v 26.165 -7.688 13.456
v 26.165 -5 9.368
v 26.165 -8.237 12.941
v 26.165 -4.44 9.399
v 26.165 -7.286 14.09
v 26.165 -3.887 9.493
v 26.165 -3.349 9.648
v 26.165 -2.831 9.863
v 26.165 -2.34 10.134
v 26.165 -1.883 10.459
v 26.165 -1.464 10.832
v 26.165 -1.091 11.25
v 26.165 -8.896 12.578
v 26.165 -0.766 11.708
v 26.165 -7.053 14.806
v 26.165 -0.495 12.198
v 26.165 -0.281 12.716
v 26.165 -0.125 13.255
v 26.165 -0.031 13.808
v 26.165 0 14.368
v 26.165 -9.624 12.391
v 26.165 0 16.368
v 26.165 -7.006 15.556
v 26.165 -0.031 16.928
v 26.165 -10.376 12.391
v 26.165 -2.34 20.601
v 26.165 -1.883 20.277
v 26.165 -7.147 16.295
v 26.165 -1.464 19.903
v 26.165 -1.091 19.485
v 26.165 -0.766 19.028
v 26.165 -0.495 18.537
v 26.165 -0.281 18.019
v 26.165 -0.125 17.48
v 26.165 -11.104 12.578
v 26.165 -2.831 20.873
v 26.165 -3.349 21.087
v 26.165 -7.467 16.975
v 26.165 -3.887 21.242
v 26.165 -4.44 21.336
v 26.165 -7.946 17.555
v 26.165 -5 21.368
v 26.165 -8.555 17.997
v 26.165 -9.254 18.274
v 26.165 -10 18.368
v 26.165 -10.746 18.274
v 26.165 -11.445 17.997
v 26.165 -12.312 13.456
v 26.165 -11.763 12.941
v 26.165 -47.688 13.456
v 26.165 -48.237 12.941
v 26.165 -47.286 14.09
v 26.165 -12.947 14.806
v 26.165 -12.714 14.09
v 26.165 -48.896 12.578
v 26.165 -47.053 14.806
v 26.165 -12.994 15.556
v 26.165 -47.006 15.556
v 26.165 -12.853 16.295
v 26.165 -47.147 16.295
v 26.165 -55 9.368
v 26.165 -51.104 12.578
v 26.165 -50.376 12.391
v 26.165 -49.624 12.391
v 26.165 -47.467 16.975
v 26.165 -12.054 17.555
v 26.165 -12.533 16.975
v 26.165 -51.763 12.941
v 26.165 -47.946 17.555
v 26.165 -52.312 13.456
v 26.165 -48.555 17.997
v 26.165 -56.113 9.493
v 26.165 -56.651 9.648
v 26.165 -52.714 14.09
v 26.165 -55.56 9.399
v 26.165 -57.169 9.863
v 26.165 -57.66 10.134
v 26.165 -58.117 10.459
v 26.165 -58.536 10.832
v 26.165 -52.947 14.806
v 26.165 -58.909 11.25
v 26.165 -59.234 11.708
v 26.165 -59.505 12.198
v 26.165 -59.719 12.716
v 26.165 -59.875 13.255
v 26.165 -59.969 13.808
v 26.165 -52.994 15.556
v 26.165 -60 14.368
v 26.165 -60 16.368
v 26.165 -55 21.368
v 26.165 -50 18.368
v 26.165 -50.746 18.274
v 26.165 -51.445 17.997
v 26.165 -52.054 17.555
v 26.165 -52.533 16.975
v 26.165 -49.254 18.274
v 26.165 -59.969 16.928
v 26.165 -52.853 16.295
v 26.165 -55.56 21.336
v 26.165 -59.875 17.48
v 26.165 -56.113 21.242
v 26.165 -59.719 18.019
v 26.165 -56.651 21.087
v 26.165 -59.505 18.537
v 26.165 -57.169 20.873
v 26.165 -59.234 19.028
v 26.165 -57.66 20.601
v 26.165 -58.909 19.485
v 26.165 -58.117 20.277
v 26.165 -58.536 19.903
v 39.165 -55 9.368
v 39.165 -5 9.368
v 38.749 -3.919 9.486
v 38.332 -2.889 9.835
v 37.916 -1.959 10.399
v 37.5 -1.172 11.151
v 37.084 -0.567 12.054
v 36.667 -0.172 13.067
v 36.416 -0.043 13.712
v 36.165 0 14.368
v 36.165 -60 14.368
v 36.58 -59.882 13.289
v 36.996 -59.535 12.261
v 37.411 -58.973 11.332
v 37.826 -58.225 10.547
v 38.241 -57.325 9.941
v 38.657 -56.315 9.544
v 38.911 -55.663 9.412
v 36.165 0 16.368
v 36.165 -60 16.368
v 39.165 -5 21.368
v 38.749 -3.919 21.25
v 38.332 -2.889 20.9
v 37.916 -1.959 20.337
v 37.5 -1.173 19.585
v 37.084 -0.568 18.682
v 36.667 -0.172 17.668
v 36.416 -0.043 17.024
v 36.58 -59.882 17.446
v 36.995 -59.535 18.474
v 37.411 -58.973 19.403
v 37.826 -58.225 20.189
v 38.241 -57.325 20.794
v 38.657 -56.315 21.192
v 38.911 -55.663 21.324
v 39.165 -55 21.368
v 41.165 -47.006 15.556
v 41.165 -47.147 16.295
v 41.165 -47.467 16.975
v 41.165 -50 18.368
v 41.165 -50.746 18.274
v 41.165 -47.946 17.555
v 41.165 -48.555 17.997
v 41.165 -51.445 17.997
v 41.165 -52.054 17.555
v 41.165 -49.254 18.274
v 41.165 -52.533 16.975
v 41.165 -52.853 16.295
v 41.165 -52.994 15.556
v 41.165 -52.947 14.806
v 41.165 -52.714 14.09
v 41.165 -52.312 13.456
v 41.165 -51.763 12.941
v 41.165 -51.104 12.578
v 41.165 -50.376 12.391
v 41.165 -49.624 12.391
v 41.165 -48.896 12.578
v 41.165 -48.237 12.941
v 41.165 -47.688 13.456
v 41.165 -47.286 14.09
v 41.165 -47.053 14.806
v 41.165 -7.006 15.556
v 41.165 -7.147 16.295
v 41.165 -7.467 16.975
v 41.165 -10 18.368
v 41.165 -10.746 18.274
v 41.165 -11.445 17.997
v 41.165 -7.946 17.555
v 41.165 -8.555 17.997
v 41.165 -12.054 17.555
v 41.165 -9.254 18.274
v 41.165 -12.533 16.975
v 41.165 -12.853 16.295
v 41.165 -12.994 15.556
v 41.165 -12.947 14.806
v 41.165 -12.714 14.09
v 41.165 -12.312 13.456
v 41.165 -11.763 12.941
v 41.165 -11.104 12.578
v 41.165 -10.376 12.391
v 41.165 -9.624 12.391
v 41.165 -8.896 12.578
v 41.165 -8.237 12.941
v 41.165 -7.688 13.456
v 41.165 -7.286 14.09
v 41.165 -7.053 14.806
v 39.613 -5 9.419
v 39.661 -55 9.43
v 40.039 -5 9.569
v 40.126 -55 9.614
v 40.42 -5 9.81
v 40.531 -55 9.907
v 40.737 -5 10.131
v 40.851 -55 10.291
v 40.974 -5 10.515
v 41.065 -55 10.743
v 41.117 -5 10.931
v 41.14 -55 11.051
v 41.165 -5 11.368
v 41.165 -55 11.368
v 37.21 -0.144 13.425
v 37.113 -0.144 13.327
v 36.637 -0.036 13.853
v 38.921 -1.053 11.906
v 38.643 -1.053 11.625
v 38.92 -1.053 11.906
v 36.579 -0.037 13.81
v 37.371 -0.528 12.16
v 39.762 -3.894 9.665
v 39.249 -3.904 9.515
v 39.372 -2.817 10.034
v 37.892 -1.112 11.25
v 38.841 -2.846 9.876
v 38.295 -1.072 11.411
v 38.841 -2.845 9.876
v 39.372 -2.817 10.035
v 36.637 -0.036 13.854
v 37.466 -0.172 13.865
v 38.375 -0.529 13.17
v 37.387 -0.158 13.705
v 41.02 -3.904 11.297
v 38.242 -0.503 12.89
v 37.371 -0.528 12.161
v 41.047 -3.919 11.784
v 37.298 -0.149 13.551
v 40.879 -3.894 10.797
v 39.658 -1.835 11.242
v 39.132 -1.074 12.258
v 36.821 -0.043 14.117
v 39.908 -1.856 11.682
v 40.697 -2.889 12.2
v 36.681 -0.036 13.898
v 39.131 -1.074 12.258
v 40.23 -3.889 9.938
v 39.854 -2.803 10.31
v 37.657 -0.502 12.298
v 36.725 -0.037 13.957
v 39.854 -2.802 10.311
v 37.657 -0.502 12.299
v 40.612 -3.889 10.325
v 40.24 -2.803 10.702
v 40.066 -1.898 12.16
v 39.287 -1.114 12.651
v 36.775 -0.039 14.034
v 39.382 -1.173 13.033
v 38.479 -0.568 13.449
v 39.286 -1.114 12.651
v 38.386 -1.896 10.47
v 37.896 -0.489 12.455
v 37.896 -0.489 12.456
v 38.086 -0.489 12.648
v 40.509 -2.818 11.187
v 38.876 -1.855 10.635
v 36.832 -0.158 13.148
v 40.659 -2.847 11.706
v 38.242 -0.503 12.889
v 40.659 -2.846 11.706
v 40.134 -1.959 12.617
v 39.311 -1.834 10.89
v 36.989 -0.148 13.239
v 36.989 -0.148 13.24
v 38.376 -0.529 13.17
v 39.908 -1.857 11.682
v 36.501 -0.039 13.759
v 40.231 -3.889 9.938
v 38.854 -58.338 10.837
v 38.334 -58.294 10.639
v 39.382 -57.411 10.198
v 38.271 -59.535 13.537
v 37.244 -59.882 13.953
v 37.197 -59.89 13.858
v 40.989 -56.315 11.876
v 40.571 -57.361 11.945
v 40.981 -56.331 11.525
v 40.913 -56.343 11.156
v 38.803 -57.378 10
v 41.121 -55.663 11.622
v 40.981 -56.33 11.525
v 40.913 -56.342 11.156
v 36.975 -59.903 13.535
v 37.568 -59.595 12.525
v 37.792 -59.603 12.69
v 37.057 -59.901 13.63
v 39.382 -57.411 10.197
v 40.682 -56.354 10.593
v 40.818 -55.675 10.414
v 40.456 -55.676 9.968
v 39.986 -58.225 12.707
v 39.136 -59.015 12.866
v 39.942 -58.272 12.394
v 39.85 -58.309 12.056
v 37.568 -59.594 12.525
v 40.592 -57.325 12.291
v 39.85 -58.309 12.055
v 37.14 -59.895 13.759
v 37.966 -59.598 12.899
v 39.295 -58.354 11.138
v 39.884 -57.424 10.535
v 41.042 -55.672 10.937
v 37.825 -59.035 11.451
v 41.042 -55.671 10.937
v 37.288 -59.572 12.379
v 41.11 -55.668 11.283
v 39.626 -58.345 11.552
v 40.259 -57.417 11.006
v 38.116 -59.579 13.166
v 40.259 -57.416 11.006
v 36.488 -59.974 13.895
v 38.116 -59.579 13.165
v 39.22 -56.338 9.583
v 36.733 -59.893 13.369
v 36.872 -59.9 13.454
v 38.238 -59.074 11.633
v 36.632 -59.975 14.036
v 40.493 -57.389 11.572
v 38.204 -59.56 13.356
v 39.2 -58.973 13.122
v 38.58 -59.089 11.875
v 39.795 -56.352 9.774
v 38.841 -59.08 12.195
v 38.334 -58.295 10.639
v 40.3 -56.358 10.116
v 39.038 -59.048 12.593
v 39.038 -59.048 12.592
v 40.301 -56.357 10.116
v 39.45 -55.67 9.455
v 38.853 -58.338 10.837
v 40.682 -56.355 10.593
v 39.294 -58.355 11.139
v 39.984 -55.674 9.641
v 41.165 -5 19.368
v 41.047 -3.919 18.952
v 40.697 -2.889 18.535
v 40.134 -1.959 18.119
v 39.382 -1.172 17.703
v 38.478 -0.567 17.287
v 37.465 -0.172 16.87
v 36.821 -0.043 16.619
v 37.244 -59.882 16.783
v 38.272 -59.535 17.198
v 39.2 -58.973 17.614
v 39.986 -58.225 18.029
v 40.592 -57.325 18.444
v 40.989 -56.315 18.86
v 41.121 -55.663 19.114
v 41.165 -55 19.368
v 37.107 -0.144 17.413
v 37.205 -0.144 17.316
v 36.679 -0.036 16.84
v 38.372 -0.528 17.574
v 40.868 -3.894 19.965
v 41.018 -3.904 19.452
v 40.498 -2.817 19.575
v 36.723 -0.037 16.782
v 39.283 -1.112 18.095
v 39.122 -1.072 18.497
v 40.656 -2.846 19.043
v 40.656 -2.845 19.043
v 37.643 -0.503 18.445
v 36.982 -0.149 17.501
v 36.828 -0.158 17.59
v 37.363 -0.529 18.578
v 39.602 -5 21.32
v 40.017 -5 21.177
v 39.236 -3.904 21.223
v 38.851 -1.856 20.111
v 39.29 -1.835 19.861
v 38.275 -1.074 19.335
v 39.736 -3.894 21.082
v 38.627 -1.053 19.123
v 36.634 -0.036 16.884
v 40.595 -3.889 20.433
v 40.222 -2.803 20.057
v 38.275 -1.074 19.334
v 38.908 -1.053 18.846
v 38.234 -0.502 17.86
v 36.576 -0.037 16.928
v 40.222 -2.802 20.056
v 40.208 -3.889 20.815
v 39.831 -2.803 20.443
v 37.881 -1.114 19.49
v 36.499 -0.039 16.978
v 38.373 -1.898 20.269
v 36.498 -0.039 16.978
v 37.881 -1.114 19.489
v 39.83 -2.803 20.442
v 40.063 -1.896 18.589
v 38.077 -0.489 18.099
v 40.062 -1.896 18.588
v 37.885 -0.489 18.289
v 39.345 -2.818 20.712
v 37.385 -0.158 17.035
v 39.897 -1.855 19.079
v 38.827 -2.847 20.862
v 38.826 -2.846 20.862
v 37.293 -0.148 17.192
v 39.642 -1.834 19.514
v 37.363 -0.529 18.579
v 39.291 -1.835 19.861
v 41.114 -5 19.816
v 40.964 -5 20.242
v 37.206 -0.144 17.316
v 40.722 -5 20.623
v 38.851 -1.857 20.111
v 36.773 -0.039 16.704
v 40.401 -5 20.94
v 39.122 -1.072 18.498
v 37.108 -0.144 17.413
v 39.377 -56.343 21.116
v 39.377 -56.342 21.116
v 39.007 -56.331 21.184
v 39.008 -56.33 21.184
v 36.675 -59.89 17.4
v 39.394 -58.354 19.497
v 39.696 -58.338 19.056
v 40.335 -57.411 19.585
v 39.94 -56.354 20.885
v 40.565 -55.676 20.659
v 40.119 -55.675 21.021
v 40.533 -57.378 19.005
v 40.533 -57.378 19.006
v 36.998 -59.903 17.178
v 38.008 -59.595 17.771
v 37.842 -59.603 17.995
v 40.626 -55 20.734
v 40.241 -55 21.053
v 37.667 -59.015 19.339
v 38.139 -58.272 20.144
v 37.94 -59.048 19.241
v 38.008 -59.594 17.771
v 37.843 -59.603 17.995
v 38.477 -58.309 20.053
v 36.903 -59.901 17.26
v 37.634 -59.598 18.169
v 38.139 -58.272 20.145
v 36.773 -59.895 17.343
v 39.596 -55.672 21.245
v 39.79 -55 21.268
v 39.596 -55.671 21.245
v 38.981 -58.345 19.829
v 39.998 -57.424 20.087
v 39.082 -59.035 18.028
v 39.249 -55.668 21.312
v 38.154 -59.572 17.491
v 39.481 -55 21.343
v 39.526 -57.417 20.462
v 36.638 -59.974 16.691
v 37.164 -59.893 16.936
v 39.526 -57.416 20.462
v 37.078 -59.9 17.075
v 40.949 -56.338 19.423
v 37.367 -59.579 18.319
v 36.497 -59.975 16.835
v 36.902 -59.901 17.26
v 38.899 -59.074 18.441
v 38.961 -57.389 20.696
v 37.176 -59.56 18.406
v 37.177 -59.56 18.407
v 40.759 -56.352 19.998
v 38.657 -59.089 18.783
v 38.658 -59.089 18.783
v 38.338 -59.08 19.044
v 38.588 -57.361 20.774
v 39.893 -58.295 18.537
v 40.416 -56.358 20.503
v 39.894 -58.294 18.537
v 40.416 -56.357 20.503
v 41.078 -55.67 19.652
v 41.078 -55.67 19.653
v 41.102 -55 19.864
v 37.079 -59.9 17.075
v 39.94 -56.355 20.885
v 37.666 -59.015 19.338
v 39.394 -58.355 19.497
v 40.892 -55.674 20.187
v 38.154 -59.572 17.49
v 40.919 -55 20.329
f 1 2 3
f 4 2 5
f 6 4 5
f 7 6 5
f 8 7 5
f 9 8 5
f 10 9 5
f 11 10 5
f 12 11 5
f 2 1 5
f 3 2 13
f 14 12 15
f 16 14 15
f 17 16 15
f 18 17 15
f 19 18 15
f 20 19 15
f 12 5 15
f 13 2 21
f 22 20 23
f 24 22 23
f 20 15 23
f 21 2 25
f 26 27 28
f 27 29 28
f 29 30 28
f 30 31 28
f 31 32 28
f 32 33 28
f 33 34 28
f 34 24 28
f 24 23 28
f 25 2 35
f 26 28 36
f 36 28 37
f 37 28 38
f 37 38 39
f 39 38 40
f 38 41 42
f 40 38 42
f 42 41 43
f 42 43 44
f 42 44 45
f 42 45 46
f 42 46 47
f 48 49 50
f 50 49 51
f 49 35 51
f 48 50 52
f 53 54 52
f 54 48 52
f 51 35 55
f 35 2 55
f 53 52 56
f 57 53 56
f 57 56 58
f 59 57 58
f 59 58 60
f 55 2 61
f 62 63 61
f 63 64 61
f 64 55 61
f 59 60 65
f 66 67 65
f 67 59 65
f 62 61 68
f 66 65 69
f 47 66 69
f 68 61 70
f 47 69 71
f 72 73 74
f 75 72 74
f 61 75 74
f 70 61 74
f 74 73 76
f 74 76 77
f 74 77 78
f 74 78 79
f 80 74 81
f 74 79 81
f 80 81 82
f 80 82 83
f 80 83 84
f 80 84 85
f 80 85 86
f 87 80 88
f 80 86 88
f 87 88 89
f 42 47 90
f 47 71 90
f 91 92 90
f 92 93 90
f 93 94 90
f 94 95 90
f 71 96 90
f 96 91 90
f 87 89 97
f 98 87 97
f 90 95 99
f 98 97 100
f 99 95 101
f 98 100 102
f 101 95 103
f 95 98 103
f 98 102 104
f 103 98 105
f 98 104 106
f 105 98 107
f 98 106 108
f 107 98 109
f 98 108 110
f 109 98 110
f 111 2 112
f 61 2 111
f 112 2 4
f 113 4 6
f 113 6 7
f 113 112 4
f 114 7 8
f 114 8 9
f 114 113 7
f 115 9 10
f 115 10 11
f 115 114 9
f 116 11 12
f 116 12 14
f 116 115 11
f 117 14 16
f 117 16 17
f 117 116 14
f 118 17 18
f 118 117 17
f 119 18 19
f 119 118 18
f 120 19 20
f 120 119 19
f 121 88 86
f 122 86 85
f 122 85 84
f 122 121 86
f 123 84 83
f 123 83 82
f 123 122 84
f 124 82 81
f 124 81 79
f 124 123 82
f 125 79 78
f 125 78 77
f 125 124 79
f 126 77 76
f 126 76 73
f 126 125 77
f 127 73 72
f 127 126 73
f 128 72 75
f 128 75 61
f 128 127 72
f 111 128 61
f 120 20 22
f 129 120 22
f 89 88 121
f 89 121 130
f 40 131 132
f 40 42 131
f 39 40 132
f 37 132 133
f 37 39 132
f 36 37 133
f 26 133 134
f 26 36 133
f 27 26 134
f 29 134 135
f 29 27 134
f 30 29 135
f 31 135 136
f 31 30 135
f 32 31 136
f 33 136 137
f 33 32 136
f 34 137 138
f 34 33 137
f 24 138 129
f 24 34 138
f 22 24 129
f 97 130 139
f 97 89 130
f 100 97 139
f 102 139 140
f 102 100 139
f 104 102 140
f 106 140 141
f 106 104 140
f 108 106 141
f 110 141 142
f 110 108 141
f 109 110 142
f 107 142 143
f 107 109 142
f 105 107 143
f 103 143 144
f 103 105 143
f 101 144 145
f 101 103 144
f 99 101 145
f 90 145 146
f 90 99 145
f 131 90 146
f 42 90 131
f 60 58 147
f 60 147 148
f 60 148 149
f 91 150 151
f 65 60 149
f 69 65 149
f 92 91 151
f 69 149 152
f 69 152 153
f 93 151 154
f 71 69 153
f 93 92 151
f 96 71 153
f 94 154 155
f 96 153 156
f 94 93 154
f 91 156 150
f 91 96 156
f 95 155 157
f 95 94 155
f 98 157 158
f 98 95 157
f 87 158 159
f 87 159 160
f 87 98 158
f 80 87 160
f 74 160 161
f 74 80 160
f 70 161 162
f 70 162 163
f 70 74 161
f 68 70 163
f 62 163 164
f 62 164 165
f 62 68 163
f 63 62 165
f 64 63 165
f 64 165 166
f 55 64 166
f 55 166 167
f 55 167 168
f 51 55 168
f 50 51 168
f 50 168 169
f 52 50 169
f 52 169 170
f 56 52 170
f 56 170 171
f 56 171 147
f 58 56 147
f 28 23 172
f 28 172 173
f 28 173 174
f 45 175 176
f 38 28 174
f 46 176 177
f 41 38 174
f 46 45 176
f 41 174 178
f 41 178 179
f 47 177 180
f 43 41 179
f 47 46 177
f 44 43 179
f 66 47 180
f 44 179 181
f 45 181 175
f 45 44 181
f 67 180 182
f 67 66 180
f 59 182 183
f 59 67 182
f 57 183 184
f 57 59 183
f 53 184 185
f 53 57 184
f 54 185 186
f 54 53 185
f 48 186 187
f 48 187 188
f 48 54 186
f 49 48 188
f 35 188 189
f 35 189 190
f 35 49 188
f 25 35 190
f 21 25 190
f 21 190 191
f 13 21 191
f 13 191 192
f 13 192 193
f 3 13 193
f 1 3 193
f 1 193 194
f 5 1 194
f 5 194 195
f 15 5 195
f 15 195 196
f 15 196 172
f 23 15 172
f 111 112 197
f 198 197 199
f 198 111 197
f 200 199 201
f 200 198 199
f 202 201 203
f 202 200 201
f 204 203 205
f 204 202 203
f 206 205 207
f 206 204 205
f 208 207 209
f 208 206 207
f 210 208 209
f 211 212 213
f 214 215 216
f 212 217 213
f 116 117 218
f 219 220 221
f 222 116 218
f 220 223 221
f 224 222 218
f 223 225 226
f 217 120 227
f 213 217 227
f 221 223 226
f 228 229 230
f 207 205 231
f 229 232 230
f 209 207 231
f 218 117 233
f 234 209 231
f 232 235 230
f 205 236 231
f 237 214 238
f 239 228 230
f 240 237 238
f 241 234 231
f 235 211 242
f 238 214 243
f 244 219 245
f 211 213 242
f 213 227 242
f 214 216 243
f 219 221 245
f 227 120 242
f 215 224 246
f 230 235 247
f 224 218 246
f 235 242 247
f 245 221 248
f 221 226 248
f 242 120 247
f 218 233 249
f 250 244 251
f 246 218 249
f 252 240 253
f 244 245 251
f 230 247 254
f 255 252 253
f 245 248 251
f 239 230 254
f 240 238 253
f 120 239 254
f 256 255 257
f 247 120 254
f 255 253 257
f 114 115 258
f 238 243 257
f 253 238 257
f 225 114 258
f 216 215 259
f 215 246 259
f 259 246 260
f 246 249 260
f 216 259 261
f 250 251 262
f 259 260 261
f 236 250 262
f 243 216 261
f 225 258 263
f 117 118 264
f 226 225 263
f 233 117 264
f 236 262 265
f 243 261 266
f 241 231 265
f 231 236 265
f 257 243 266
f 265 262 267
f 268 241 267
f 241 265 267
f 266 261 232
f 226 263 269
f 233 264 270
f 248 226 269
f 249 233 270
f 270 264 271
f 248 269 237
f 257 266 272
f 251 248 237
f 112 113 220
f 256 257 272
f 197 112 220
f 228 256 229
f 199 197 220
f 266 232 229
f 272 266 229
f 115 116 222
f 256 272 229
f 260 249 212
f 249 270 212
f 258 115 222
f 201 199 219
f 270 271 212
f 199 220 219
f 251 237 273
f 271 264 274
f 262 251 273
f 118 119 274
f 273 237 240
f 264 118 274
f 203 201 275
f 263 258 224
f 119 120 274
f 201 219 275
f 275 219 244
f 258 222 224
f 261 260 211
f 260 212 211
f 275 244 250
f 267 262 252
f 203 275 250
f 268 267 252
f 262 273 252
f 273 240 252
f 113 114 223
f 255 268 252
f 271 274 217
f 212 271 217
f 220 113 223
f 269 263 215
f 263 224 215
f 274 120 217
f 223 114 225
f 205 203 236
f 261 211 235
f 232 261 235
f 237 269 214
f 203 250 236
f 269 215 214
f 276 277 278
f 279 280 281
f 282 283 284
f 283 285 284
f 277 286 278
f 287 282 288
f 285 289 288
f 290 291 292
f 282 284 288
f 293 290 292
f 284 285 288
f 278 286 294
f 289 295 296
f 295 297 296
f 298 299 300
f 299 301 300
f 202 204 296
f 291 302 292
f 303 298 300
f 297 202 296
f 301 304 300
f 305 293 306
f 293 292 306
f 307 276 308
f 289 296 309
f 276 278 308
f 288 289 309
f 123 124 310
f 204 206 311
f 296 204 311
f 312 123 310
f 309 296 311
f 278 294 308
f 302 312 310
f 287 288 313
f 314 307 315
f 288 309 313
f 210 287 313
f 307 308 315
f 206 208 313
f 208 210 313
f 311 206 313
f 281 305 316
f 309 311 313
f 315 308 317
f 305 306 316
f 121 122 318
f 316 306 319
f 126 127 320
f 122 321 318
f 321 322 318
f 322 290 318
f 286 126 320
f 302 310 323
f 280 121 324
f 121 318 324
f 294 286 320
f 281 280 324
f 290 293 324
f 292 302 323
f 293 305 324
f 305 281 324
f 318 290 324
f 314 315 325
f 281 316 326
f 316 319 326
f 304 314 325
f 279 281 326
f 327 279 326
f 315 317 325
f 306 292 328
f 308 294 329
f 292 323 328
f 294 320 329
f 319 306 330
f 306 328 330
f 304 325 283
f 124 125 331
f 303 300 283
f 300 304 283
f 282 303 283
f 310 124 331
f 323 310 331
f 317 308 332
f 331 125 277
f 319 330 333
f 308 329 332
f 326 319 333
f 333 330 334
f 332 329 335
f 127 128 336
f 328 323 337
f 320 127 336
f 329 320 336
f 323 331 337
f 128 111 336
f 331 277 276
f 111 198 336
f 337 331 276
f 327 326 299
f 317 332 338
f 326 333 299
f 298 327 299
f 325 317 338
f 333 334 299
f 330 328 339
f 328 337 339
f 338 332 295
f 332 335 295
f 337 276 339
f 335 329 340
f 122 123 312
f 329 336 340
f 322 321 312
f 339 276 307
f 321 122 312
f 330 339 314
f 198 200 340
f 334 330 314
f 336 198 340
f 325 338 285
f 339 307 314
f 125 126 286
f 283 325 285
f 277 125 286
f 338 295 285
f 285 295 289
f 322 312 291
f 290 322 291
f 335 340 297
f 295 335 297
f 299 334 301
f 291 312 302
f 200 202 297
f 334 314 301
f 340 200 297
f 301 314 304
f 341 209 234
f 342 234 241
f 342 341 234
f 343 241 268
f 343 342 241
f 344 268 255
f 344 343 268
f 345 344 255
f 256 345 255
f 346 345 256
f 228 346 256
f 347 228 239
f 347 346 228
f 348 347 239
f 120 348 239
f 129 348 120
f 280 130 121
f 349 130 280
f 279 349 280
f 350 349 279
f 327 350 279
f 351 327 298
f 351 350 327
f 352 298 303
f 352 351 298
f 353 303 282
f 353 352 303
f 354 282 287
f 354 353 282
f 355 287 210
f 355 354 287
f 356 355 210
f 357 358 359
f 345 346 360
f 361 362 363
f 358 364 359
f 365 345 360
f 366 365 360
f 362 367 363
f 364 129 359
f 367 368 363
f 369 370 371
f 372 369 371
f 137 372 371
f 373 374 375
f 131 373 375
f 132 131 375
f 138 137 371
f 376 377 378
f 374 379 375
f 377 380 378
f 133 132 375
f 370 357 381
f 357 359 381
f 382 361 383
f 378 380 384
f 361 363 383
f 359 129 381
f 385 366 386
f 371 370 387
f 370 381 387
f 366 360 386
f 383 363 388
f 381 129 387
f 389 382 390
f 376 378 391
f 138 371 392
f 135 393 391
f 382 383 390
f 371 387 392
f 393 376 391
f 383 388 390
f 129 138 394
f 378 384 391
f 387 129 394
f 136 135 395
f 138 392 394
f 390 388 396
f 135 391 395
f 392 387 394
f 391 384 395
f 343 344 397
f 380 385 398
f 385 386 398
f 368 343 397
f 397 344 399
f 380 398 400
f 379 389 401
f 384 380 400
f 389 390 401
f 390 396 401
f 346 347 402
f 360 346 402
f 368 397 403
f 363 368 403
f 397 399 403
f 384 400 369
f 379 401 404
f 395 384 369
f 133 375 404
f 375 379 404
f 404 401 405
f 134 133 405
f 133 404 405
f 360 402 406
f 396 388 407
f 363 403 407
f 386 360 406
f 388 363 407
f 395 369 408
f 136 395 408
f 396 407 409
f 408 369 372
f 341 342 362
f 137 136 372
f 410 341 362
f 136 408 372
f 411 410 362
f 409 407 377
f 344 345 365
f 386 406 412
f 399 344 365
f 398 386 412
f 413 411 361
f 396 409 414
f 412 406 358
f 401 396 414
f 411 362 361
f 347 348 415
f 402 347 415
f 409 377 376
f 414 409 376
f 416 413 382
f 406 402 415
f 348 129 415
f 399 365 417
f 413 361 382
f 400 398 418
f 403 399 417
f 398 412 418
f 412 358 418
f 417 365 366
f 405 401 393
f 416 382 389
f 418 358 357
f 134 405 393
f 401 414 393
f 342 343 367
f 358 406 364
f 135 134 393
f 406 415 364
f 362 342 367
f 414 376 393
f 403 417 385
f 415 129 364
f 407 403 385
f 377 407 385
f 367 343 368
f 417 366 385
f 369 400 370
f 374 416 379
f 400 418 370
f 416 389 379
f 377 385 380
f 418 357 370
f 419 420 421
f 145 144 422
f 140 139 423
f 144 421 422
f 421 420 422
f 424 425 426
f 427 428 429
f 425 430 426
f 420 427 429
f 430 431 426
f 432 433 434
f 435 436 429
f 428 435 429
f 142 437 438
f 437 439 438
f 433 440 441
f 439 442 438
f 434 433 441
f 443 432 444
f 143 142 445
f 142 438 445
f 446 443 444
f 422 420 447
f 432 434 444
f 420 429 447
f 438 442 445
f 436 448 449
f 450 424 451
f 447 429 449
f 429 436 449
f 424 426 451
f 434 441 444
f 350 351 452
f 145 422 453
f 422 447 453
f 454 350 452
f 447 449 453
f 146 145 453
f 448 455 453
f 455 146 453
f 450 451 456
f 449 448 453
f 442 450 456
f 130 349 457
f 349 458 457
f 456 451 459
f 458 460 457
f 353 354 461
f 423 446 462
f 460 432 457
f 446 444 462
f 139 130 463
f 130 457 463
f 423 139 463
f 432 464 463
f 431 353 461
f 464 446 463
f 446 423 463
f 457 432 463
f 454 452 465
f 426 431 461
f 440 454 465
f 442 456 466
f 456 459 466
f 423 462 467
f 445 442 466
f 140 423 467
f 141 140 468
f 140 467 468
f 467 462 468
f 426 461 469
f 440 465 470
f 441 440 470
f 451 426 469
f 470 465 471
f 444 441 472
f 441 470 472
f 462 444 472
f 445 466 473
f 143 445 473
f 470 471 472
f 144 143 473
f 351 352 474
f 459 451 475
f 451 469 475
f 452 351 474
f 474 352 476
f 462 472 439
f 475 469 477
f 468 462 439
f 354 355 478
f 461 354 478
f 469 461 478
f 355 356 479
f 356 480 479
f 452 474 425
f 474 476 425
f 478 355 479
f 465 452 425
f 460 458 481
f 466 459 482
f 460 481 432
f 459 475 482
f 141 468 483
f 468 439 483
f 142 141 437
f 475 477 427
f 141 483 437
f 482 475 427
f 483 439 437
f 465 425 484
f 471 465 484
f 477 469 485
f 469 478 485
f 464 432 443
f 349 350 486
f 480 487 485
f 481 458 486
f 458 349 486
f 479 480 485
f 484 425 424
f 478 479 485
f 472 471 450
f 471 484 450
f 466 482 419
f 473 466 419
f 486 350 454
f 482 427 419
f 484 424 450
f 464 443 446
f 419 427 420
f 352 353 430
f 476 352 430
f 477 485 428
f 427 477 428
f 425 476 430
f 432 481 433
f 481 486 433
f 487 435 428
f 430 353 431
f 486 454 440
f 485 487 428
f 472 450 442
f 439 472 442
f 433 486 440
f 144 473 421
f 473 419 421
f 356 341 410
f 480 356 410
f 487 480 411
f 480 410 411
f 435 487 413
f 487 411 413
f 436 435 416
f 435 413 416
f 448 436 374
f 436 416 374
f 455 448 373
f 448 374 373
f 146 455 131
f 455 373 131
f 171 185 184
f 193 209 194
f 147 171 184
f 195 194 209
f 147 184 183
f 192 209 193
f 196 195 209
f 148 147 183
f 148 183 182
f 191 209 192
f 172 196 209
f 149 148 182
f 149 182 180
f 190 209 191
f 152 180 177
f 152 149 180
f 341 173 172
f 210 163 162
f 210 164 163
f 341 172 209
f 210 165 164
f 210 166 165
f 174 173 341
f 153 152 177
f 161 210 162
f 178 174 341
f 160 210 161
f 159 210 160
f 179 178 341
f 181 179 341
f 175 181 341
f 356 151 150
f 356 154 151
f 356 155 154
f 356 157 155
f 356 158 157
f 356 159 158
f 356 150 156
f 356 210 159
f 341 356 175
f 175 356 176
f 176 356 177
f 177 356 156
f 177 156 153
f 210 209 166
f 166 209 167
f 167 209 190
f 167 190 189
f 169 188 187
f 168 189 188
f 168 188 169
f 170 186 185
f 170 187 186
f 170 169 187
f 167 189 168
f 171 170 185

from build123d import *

# Parameters (mm, degrees)
SKETCH001_W = 12
SKETCH001_H = 60
SKETCH001_R = 3
PAD_DEPTH   = 15
FILLET_R    = 2
FILLET001_R = 2
FILLET002_R = 5
FILLET003_R = 5


with BuildPart() as part:
    # Sketch001 → Pad (new body)
    with BuildSketch(Plane(origin=(26.164927, 0, 0), x_dir=(0, 0, 1), z_dir=(1, 0, 0))):
        with Locations((15.367814, 30)):
            Rectangle(SKETCH001_W, SKETCH001_H)
        with Locations((15.367814, 10)):
            Circle(SKETCH001_R, mode=Mode.SUBTRACT)
        with Locations((15.367814, 50)):
            Circle(SKETCH001_R, mode=Mode.SUBTRACT)
    extrude(amount=PAD_DEPTH)

    # Fillet
    fillet_edges = [part.edges().sort_by_distance(p)[0] for p in [
        (41.164927, -30, 9.367814),
    ]]
    fillet(fillet_edges, radius=FILLET_R)

    # Fillet001
    fillet001_edges = [part.edges().sort_by_distance(p)[0] for p in [
        (41.164927, -30, 21.367814),
    ]]
    fillet(fillet001_edges, radius=FILLET001_R)

    # Fillet002
    fillet002_edges = [part.edges().sort_by_distance(p)[0] for p in [
        (41.164927, -60, 15.367814),
    ]]
    fillet(fillet002_edges, radius=FILLET002_R)

    # Fillet003
    fillet003_edges = [part.edges().sort_by_distance(p)[0] for p in [
        (41.164927, 0, 15.367814),
    ]]
    fillet(fillet003_edges, radius=FILLET003_R)


solid = part.part
